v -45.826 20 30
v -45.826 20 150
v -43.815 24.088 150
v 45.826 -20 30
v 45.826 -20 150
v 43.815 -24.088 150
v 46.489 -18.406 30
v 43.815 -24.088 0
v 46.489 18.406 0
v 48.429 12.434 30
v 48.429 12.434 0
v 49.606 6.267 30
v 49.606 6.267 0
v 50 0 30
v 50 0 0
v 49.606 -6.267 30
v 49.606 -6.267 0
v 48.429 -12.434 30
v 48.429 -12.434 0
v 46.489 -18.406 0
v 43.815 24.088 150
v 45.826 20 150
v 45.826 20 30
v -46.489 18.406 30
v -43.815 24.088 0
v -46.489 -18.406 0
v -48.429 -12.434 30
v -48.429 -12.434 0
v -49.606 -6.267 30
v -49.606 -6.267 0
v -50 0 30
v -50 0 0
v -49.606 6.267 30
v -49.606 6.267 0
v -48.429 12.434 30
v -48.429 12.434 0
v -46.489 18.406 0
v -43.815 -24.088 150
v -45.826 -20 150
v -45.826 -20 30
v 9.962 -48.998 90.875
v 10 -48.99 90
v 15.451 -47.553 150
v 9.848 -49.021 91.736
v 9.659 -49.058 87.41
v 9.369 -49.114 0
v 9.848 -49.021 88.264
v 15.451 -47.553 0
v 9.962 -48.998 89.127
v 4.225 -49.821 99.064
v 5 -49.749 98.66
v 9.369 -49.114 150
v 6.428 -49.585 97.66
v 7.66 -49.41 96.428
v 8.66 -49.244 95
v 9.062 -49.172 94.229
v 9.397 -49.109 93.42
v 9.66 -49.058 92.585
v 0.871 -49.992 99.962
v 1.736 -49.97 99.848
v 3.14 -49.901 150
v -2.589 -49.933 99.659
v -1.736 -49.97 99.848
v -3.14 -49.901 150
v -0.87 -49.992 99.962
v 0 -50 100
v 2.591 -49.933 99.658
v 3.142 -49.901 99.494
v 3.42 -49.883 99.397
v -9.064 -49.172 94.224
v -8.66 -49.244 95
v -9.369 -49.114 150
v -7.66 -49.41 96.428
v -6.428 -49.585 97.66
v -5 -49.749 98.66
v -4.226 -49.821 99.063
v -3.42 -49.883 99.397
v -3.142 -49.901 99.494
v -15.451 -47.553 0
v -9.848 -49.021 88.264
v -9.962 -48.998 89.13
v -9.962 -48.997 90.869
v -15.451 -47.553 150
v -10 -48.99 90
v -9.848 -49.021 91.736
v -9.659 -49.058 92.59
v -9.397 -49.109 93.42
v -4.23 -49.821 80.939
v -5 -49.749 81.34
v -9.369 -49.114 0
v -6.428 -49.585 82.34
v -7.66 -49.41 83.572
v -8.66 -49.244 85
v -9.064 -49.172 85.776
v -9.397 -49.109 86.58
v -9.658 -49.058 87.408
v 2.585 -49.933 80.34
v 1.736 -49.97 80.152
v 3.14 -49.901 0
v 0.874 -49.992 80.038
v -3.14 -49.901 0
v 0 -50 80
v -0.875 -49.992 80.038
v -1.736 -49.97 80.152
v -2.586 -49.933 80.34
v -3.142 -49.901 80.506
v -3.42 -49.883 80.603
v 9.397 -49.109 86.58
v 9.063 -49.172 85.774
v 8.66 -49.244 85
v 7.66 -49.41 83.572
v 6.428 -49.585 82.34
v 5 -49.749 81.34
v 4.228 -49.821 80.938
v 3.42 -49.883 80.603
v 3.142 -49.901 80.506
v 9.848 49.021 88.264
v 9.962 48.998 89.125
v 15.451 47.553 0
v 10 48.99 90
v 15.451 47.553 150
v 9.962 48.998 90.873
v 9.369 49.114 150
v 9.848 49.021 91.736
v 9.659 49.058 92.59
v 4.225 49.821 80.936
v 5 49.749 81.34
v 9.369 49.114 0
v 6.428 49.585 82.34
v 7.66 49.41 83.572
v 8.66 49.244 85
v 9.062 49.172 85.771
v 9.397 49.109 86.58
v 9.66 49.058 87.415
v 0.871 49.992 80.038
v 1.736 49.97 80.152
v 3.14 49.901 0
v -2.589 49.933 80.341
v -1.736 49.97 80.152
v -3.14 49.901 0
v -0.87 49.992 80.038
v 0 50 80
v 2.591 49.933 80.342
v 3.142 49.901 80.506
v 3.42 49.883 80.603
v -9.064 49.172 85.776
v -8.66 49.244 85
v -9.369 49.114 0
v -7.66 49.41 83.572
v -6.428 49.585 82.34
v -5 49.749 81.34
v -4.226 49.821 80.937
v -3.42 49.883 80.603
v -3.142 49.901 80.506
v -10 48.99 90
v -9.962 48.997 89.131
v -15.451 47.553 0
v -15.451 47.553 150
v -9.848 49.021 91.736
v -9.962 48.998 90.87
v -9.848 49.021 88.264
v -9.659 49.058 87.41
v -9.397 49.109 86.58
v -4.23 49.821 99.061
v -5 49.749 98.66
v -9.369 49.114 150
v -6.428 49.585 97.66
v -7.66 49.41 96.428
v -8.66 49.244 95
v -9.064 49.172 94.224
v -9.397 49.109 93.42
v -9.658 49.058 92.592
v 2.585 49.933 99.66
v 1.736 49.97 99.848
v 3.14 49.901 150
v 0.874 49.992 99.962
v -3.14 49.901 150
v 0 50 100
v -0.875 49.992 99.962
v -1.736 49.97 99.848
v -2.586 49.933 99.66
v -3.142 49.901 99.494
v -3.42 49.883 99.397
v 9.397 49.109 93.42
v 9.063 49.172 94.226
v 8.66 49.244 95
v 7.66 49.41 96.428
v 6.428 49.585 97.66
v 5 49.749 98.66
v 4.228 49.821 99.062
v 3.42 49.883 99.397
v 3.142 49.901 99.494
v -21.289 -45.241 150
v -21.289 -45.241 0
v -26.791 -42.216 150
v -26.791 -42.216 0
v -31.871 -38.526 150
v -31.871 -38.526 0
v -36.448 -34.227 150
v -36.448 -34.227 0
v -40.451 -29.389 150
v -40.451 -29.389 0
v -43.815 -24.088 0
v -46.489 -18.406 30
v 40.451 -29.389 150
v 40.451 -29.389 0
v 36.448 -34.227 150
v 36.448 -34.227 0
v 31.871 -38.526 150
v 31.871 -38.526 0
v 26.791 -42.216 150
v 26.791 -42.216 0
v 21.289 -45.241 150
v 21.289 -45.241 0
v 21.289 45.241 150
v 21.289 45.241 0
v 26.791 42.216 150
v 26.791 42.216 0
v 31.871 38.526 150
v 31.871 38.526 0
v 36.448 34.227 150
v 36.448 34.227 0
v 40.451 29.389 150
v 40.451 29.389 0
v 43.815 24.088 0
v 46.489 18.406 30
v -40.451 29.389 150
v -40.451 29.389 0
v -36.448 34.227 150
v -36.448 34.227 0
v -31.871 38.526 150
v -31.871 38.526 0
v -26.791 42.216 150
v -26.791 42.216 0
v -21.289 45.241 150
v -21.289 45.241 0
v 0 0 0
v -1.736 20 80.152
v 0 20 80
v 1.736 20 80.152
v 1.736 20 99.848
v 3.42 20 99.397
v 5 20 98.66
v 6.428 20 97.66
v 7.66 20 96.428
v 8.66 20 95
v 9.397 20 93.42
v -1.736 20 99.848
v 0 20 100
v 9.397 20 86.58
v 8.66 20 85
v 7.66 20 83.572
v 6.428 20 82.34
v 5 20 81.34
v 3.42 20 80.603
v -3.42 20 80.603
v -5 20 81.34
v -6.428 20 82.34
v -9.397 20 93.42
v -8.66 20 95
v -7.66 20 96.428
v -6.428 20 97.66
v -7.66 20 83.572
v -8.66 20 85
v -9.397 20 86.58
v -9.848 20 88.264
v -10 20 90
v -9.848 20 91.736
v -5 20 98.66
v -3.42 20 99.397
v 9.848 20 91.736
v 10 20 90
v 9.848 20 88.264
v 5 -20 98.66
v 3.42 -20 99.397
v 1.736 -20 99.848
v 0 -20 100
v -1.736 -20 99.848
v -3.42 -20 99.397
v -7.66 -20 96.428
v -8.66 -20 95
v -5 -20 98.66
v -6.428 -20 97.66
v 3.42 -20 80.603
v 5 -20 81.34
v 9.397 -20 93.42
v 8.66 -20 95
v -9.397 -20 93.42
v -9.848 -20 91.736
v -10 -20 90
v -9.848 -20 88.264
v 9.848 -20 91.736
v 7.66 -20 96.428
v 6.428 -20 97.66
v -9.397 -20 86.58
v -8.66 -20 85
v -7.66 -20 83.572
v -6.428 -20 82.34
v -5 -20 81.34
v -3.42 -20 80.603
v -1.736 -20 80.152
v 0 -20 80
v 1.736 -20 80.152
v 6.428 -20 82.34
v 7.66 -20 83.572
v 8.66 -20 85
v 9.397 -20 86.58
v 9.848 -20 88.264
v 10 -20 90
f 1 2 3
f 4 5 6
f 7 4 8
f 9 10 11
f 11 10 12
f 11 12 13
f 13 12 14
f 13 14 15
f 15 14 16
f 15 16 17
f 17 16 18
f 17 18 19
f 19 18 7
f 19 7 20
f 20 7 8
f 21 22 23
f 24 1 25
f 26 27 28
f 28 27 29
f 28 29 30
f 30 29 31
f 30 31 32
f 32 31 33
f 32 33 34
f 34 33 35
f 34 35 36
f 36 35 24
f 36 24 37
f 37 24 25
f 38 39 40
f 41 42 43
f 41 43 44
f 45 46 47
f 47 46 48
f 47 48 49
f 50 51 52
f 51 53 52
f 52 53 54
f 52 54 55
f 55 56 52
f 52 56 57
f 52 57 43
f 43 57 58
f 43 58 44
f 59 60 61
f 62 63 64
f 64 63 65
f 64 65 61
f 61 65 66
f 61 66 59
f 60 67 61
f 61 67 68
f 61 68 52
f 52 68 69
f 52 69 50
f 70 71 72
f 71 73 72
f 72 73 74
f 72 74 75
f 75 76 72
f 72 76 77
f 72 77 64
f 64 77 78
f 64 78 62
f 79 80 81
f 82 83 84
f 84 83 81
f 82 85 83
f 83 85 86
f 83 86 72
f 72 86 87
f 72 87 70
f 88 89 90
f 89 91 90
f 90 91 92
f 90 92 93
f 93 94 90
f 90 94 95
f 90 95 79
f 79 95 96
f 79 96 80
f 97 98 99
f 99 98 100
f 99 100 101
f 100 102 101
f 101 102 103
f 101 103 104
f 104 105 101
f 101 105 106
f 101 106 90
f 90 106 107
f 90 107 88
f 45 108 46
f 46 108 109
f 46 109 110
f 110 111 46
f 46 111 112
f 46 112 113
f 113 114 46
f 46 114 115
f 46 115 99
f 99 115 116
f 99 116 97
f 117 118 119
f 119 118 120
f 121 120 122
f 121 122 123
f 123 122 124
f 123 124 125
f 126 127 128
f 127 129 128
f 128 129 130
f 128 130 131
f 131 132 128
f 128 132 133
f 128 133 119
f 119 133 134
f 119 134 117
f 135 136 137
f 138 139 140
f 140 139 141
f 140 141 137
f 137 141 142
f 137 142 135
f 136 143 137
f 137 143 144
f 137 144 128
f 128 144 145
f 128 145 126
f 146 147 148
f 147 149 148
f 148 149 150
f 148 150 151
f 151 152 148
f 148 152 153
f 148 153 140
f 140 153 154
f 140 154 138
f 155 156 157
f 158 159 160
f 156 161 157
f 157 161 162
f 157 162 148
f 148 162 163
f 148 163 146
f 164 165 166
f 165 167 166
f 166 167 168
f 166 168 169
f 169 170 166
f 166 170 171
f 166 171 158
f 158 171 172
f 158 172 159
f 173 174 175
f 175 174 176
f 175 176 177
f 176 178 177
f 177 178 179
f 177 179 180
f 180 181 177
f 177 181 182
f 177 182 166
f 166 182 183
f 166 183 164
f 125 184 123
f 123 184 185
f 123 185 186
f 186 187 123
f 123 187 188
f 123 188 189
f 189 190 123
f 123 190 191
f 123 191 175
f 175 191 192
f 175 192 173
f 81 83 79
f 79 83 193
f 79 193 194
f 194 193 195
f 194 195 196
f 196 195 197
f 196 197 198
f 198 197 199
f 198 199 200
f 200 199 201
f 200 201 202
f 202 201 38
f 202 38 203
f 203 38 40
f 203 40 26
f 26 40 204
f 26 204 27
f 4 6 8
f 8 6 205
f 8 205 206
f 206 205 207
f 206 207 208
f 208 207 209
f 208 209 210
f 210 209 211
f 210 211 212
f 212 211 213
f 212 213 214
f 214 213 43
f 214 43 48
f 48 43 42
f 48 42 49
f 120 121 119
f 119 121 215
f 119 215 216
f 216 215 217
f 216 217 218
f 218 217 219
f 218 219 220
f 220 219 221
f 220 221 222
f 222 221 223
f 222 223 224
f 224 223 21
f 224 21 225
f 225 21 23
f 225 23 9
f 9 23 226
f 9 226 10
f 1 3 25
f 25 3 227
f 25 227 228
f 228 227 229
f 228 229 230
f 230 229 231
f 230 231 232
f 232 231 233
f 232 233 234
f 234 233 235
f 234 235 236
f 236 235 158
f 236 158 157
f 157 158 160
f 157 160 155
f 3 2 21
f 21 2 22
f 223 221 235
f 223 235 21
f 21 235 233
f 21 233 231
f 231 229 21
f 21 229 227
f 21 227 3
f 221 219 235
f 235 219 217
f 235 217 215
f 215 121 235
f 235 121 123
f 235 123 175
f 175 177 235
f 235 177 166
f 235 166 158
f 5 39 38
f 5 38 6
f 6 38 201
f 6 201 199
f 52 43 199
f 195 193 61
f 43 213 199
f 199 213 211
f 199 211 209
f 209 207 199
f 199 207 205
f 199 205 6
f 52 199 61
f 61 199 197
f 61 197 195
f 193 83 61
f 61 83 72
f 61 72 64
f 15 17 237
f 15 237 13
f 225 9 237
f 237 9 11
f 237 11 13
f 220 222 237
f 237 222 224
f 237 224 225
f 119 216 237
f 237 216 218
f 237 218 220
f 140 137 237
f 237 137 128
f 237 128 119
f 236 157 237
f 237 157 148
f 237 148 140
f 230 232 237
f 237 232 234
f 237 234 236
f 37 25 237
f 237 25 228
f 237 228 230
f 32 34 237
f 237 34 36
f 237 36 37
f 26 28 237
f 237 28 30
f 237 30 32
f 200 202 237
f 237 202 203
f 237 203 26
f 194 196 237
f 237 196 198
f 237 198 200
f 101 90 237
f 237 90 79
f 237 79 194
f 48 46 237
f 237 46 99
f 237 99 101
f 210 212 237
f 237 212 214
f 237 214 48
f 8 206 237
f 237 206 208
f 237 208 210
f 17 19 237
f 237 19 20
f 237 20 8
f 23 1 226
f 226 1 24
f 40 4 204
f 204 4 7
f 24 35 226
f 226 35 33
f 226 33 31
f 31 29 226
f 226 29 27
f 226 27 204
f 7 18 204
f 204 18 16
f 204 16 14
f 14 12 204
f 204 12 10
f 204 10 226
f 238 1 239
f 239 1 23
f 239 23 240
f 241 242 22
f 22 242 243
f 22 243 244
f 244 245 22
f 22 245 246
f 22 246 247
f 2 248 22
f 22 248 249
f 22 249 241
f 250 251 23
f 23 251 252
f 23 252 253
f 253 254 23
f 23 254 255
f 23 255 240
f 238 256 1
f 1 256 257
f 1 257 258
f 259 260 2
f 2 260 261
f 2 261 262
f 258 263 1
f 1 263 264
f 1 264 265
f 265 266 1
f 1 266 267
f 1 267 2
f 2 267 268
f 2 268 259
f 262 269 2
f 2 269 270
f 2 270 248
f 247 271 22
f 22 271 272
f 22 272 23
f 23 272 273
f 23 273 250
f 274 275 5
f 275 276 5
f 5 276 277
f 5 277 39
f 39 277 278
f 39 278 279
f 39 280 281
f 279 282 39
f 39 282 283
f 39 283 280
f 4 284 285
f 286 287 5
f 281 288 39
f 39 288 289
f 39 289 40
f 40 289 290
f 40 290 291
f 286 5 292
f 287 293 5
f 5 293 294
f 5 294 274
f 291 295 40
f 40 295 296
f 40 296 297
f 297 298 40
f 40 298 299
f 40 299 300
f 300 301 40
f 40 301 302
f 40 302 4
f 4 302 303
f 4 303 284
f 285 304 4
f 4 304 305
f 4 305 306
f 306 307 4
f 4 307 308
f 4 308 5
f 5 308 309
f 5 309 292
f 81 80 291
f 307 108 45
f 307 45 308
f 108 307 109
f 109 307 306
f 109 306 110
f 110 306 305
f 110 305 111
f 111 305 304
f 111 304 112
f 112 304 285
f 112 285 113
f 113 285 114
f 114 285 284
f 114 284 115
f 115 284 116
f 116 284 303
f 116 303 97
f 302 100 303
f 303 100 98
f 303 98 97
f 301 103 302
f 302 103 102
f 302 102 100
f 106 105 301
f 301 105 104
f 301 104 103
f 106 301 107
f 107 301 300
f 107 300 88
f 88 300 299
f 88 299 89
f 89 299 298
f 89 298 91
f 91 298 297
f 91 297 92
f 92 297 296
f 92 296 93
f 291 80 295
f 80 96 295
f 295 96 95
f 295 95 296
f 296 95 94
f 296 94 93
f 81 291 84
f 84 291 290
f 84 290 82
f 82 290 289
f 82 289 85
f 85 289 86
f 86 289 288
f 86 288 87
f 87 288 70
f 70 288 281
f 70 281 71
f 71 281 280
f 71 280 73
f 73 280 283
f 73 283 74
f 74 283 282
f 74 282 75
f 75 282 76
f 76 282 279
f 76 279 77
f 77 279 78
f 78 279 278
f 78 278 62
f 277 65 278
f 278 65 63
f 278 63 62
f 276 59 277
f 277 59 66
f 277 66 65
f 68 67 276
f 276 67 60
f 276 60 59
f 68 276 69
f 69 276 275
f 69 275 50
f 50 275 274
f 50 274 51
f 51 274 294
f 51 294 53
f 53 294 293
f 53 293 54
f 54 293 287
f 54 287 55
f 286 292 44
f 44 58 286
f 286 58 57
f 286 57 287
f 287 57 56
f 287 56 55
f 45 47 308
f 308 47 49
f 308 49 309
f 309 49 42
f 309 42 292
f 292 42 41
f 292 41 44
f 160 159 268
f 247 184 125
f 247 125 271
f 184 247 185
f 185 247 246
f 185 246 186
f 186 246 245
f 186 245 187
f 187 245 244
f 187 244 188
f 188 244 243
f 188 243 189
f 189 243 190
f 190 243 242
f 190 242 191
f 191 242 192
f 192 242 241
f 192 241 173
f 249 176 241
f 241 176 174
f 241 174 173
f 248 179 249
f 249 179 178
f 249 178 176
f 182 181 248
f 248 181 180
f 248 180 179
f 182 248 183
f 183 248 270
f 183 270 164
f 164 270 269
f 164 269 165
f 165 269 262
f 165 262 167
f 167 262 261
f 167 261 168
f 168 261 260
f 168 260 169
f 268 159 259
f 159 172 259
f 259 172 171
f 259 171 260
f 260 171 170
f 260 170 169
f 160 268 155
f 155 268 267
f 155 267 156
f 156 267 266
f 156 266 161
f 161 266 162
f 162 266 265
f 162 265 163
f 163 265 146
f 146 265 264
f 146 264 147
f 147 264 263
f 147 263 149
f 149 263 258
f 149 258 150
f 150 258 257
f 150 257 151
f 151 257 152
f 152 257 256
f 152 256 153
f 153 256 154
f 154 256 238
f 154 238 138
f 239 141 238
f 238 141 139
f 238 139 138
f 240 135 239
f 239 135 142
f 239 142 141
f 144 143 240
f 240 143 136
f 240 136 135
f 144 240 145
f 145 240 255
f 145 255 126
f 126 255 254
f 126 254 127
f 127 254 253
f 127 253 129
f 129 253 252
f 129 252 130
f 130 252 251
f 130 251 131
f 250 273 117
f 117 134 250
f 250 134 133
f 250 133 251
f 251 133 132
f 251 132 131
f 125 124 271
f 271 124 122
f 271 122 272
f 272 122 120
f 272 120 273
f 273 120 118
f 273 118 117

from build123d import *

# Parameters (mm, degrees)
SKETCH2_R            = 50
BOSS_EXTRUDE1_DEPTH  = 150
SKETCH3_OUTSIDE_W    = 143.232
SKETCH3_OUTSIDE_H    = 143.232
CUT_EXTRUDE1_DEPTH   = 120
CUT_SWEEP1_PROFILE_R = 10


with BuildPart() as part:
    # Sketch2 → Boss-Extrude1 (new body)
    with BuildSketch(Plane.XY):
        Circle(SKETCH2_R)
    extrude(amount=BOSS_EXTRUDE1_DEPTH)

    # Sketch3 outside → Cut-Extrude1 (cut)
    with BuildSketch(Plane.XY.offset(150)):
        Rectangle(SKETCH3_OUTSIDE_W, SKETCH3_OUTSIDE_H)
        with BuildLine():
            Line((-45.82575695, 20), (45.82575695, 20))
            ThreePointArc((45.82575695, 20), (0, 50), (-45.82575695, 20))
        make_face(mode=Mode.SUBTRACT)
        with BuildLine():
            Line((45.82575695, -20), (-45.82575695, -20))
            ThreePointArc((-45.82575695, -20), (0, -50), (45.82575695, -20))
        make_face(mode=Mode.SUBTRACT)
    extrude(amount=-CUT_EXTRUDE1_DEPTH, mode=Mode.SUBTRACT)

    # Cut-Sweep1: sweep along a path in Sketch5
    with BuildLine(Plane.XY.offset(90)) as cut_sweep1_path:
        Line((0, 50), (0, -50))
    # Cut-Sweep1 profile (on start of the path) → Cut-Sweep1 (sweep, cut)
    with BuildSketch(Plane(origin=(0, 50, 90), x_dir=(-1, 0, 0), z_dir=(0, -1, 0))):
        Circle(CUT_SWEEP1_PROFILE_R)
    sweep(path=cut_sweep1_path.line, mode=Mode.SUBTRACT)


solid = part.part
